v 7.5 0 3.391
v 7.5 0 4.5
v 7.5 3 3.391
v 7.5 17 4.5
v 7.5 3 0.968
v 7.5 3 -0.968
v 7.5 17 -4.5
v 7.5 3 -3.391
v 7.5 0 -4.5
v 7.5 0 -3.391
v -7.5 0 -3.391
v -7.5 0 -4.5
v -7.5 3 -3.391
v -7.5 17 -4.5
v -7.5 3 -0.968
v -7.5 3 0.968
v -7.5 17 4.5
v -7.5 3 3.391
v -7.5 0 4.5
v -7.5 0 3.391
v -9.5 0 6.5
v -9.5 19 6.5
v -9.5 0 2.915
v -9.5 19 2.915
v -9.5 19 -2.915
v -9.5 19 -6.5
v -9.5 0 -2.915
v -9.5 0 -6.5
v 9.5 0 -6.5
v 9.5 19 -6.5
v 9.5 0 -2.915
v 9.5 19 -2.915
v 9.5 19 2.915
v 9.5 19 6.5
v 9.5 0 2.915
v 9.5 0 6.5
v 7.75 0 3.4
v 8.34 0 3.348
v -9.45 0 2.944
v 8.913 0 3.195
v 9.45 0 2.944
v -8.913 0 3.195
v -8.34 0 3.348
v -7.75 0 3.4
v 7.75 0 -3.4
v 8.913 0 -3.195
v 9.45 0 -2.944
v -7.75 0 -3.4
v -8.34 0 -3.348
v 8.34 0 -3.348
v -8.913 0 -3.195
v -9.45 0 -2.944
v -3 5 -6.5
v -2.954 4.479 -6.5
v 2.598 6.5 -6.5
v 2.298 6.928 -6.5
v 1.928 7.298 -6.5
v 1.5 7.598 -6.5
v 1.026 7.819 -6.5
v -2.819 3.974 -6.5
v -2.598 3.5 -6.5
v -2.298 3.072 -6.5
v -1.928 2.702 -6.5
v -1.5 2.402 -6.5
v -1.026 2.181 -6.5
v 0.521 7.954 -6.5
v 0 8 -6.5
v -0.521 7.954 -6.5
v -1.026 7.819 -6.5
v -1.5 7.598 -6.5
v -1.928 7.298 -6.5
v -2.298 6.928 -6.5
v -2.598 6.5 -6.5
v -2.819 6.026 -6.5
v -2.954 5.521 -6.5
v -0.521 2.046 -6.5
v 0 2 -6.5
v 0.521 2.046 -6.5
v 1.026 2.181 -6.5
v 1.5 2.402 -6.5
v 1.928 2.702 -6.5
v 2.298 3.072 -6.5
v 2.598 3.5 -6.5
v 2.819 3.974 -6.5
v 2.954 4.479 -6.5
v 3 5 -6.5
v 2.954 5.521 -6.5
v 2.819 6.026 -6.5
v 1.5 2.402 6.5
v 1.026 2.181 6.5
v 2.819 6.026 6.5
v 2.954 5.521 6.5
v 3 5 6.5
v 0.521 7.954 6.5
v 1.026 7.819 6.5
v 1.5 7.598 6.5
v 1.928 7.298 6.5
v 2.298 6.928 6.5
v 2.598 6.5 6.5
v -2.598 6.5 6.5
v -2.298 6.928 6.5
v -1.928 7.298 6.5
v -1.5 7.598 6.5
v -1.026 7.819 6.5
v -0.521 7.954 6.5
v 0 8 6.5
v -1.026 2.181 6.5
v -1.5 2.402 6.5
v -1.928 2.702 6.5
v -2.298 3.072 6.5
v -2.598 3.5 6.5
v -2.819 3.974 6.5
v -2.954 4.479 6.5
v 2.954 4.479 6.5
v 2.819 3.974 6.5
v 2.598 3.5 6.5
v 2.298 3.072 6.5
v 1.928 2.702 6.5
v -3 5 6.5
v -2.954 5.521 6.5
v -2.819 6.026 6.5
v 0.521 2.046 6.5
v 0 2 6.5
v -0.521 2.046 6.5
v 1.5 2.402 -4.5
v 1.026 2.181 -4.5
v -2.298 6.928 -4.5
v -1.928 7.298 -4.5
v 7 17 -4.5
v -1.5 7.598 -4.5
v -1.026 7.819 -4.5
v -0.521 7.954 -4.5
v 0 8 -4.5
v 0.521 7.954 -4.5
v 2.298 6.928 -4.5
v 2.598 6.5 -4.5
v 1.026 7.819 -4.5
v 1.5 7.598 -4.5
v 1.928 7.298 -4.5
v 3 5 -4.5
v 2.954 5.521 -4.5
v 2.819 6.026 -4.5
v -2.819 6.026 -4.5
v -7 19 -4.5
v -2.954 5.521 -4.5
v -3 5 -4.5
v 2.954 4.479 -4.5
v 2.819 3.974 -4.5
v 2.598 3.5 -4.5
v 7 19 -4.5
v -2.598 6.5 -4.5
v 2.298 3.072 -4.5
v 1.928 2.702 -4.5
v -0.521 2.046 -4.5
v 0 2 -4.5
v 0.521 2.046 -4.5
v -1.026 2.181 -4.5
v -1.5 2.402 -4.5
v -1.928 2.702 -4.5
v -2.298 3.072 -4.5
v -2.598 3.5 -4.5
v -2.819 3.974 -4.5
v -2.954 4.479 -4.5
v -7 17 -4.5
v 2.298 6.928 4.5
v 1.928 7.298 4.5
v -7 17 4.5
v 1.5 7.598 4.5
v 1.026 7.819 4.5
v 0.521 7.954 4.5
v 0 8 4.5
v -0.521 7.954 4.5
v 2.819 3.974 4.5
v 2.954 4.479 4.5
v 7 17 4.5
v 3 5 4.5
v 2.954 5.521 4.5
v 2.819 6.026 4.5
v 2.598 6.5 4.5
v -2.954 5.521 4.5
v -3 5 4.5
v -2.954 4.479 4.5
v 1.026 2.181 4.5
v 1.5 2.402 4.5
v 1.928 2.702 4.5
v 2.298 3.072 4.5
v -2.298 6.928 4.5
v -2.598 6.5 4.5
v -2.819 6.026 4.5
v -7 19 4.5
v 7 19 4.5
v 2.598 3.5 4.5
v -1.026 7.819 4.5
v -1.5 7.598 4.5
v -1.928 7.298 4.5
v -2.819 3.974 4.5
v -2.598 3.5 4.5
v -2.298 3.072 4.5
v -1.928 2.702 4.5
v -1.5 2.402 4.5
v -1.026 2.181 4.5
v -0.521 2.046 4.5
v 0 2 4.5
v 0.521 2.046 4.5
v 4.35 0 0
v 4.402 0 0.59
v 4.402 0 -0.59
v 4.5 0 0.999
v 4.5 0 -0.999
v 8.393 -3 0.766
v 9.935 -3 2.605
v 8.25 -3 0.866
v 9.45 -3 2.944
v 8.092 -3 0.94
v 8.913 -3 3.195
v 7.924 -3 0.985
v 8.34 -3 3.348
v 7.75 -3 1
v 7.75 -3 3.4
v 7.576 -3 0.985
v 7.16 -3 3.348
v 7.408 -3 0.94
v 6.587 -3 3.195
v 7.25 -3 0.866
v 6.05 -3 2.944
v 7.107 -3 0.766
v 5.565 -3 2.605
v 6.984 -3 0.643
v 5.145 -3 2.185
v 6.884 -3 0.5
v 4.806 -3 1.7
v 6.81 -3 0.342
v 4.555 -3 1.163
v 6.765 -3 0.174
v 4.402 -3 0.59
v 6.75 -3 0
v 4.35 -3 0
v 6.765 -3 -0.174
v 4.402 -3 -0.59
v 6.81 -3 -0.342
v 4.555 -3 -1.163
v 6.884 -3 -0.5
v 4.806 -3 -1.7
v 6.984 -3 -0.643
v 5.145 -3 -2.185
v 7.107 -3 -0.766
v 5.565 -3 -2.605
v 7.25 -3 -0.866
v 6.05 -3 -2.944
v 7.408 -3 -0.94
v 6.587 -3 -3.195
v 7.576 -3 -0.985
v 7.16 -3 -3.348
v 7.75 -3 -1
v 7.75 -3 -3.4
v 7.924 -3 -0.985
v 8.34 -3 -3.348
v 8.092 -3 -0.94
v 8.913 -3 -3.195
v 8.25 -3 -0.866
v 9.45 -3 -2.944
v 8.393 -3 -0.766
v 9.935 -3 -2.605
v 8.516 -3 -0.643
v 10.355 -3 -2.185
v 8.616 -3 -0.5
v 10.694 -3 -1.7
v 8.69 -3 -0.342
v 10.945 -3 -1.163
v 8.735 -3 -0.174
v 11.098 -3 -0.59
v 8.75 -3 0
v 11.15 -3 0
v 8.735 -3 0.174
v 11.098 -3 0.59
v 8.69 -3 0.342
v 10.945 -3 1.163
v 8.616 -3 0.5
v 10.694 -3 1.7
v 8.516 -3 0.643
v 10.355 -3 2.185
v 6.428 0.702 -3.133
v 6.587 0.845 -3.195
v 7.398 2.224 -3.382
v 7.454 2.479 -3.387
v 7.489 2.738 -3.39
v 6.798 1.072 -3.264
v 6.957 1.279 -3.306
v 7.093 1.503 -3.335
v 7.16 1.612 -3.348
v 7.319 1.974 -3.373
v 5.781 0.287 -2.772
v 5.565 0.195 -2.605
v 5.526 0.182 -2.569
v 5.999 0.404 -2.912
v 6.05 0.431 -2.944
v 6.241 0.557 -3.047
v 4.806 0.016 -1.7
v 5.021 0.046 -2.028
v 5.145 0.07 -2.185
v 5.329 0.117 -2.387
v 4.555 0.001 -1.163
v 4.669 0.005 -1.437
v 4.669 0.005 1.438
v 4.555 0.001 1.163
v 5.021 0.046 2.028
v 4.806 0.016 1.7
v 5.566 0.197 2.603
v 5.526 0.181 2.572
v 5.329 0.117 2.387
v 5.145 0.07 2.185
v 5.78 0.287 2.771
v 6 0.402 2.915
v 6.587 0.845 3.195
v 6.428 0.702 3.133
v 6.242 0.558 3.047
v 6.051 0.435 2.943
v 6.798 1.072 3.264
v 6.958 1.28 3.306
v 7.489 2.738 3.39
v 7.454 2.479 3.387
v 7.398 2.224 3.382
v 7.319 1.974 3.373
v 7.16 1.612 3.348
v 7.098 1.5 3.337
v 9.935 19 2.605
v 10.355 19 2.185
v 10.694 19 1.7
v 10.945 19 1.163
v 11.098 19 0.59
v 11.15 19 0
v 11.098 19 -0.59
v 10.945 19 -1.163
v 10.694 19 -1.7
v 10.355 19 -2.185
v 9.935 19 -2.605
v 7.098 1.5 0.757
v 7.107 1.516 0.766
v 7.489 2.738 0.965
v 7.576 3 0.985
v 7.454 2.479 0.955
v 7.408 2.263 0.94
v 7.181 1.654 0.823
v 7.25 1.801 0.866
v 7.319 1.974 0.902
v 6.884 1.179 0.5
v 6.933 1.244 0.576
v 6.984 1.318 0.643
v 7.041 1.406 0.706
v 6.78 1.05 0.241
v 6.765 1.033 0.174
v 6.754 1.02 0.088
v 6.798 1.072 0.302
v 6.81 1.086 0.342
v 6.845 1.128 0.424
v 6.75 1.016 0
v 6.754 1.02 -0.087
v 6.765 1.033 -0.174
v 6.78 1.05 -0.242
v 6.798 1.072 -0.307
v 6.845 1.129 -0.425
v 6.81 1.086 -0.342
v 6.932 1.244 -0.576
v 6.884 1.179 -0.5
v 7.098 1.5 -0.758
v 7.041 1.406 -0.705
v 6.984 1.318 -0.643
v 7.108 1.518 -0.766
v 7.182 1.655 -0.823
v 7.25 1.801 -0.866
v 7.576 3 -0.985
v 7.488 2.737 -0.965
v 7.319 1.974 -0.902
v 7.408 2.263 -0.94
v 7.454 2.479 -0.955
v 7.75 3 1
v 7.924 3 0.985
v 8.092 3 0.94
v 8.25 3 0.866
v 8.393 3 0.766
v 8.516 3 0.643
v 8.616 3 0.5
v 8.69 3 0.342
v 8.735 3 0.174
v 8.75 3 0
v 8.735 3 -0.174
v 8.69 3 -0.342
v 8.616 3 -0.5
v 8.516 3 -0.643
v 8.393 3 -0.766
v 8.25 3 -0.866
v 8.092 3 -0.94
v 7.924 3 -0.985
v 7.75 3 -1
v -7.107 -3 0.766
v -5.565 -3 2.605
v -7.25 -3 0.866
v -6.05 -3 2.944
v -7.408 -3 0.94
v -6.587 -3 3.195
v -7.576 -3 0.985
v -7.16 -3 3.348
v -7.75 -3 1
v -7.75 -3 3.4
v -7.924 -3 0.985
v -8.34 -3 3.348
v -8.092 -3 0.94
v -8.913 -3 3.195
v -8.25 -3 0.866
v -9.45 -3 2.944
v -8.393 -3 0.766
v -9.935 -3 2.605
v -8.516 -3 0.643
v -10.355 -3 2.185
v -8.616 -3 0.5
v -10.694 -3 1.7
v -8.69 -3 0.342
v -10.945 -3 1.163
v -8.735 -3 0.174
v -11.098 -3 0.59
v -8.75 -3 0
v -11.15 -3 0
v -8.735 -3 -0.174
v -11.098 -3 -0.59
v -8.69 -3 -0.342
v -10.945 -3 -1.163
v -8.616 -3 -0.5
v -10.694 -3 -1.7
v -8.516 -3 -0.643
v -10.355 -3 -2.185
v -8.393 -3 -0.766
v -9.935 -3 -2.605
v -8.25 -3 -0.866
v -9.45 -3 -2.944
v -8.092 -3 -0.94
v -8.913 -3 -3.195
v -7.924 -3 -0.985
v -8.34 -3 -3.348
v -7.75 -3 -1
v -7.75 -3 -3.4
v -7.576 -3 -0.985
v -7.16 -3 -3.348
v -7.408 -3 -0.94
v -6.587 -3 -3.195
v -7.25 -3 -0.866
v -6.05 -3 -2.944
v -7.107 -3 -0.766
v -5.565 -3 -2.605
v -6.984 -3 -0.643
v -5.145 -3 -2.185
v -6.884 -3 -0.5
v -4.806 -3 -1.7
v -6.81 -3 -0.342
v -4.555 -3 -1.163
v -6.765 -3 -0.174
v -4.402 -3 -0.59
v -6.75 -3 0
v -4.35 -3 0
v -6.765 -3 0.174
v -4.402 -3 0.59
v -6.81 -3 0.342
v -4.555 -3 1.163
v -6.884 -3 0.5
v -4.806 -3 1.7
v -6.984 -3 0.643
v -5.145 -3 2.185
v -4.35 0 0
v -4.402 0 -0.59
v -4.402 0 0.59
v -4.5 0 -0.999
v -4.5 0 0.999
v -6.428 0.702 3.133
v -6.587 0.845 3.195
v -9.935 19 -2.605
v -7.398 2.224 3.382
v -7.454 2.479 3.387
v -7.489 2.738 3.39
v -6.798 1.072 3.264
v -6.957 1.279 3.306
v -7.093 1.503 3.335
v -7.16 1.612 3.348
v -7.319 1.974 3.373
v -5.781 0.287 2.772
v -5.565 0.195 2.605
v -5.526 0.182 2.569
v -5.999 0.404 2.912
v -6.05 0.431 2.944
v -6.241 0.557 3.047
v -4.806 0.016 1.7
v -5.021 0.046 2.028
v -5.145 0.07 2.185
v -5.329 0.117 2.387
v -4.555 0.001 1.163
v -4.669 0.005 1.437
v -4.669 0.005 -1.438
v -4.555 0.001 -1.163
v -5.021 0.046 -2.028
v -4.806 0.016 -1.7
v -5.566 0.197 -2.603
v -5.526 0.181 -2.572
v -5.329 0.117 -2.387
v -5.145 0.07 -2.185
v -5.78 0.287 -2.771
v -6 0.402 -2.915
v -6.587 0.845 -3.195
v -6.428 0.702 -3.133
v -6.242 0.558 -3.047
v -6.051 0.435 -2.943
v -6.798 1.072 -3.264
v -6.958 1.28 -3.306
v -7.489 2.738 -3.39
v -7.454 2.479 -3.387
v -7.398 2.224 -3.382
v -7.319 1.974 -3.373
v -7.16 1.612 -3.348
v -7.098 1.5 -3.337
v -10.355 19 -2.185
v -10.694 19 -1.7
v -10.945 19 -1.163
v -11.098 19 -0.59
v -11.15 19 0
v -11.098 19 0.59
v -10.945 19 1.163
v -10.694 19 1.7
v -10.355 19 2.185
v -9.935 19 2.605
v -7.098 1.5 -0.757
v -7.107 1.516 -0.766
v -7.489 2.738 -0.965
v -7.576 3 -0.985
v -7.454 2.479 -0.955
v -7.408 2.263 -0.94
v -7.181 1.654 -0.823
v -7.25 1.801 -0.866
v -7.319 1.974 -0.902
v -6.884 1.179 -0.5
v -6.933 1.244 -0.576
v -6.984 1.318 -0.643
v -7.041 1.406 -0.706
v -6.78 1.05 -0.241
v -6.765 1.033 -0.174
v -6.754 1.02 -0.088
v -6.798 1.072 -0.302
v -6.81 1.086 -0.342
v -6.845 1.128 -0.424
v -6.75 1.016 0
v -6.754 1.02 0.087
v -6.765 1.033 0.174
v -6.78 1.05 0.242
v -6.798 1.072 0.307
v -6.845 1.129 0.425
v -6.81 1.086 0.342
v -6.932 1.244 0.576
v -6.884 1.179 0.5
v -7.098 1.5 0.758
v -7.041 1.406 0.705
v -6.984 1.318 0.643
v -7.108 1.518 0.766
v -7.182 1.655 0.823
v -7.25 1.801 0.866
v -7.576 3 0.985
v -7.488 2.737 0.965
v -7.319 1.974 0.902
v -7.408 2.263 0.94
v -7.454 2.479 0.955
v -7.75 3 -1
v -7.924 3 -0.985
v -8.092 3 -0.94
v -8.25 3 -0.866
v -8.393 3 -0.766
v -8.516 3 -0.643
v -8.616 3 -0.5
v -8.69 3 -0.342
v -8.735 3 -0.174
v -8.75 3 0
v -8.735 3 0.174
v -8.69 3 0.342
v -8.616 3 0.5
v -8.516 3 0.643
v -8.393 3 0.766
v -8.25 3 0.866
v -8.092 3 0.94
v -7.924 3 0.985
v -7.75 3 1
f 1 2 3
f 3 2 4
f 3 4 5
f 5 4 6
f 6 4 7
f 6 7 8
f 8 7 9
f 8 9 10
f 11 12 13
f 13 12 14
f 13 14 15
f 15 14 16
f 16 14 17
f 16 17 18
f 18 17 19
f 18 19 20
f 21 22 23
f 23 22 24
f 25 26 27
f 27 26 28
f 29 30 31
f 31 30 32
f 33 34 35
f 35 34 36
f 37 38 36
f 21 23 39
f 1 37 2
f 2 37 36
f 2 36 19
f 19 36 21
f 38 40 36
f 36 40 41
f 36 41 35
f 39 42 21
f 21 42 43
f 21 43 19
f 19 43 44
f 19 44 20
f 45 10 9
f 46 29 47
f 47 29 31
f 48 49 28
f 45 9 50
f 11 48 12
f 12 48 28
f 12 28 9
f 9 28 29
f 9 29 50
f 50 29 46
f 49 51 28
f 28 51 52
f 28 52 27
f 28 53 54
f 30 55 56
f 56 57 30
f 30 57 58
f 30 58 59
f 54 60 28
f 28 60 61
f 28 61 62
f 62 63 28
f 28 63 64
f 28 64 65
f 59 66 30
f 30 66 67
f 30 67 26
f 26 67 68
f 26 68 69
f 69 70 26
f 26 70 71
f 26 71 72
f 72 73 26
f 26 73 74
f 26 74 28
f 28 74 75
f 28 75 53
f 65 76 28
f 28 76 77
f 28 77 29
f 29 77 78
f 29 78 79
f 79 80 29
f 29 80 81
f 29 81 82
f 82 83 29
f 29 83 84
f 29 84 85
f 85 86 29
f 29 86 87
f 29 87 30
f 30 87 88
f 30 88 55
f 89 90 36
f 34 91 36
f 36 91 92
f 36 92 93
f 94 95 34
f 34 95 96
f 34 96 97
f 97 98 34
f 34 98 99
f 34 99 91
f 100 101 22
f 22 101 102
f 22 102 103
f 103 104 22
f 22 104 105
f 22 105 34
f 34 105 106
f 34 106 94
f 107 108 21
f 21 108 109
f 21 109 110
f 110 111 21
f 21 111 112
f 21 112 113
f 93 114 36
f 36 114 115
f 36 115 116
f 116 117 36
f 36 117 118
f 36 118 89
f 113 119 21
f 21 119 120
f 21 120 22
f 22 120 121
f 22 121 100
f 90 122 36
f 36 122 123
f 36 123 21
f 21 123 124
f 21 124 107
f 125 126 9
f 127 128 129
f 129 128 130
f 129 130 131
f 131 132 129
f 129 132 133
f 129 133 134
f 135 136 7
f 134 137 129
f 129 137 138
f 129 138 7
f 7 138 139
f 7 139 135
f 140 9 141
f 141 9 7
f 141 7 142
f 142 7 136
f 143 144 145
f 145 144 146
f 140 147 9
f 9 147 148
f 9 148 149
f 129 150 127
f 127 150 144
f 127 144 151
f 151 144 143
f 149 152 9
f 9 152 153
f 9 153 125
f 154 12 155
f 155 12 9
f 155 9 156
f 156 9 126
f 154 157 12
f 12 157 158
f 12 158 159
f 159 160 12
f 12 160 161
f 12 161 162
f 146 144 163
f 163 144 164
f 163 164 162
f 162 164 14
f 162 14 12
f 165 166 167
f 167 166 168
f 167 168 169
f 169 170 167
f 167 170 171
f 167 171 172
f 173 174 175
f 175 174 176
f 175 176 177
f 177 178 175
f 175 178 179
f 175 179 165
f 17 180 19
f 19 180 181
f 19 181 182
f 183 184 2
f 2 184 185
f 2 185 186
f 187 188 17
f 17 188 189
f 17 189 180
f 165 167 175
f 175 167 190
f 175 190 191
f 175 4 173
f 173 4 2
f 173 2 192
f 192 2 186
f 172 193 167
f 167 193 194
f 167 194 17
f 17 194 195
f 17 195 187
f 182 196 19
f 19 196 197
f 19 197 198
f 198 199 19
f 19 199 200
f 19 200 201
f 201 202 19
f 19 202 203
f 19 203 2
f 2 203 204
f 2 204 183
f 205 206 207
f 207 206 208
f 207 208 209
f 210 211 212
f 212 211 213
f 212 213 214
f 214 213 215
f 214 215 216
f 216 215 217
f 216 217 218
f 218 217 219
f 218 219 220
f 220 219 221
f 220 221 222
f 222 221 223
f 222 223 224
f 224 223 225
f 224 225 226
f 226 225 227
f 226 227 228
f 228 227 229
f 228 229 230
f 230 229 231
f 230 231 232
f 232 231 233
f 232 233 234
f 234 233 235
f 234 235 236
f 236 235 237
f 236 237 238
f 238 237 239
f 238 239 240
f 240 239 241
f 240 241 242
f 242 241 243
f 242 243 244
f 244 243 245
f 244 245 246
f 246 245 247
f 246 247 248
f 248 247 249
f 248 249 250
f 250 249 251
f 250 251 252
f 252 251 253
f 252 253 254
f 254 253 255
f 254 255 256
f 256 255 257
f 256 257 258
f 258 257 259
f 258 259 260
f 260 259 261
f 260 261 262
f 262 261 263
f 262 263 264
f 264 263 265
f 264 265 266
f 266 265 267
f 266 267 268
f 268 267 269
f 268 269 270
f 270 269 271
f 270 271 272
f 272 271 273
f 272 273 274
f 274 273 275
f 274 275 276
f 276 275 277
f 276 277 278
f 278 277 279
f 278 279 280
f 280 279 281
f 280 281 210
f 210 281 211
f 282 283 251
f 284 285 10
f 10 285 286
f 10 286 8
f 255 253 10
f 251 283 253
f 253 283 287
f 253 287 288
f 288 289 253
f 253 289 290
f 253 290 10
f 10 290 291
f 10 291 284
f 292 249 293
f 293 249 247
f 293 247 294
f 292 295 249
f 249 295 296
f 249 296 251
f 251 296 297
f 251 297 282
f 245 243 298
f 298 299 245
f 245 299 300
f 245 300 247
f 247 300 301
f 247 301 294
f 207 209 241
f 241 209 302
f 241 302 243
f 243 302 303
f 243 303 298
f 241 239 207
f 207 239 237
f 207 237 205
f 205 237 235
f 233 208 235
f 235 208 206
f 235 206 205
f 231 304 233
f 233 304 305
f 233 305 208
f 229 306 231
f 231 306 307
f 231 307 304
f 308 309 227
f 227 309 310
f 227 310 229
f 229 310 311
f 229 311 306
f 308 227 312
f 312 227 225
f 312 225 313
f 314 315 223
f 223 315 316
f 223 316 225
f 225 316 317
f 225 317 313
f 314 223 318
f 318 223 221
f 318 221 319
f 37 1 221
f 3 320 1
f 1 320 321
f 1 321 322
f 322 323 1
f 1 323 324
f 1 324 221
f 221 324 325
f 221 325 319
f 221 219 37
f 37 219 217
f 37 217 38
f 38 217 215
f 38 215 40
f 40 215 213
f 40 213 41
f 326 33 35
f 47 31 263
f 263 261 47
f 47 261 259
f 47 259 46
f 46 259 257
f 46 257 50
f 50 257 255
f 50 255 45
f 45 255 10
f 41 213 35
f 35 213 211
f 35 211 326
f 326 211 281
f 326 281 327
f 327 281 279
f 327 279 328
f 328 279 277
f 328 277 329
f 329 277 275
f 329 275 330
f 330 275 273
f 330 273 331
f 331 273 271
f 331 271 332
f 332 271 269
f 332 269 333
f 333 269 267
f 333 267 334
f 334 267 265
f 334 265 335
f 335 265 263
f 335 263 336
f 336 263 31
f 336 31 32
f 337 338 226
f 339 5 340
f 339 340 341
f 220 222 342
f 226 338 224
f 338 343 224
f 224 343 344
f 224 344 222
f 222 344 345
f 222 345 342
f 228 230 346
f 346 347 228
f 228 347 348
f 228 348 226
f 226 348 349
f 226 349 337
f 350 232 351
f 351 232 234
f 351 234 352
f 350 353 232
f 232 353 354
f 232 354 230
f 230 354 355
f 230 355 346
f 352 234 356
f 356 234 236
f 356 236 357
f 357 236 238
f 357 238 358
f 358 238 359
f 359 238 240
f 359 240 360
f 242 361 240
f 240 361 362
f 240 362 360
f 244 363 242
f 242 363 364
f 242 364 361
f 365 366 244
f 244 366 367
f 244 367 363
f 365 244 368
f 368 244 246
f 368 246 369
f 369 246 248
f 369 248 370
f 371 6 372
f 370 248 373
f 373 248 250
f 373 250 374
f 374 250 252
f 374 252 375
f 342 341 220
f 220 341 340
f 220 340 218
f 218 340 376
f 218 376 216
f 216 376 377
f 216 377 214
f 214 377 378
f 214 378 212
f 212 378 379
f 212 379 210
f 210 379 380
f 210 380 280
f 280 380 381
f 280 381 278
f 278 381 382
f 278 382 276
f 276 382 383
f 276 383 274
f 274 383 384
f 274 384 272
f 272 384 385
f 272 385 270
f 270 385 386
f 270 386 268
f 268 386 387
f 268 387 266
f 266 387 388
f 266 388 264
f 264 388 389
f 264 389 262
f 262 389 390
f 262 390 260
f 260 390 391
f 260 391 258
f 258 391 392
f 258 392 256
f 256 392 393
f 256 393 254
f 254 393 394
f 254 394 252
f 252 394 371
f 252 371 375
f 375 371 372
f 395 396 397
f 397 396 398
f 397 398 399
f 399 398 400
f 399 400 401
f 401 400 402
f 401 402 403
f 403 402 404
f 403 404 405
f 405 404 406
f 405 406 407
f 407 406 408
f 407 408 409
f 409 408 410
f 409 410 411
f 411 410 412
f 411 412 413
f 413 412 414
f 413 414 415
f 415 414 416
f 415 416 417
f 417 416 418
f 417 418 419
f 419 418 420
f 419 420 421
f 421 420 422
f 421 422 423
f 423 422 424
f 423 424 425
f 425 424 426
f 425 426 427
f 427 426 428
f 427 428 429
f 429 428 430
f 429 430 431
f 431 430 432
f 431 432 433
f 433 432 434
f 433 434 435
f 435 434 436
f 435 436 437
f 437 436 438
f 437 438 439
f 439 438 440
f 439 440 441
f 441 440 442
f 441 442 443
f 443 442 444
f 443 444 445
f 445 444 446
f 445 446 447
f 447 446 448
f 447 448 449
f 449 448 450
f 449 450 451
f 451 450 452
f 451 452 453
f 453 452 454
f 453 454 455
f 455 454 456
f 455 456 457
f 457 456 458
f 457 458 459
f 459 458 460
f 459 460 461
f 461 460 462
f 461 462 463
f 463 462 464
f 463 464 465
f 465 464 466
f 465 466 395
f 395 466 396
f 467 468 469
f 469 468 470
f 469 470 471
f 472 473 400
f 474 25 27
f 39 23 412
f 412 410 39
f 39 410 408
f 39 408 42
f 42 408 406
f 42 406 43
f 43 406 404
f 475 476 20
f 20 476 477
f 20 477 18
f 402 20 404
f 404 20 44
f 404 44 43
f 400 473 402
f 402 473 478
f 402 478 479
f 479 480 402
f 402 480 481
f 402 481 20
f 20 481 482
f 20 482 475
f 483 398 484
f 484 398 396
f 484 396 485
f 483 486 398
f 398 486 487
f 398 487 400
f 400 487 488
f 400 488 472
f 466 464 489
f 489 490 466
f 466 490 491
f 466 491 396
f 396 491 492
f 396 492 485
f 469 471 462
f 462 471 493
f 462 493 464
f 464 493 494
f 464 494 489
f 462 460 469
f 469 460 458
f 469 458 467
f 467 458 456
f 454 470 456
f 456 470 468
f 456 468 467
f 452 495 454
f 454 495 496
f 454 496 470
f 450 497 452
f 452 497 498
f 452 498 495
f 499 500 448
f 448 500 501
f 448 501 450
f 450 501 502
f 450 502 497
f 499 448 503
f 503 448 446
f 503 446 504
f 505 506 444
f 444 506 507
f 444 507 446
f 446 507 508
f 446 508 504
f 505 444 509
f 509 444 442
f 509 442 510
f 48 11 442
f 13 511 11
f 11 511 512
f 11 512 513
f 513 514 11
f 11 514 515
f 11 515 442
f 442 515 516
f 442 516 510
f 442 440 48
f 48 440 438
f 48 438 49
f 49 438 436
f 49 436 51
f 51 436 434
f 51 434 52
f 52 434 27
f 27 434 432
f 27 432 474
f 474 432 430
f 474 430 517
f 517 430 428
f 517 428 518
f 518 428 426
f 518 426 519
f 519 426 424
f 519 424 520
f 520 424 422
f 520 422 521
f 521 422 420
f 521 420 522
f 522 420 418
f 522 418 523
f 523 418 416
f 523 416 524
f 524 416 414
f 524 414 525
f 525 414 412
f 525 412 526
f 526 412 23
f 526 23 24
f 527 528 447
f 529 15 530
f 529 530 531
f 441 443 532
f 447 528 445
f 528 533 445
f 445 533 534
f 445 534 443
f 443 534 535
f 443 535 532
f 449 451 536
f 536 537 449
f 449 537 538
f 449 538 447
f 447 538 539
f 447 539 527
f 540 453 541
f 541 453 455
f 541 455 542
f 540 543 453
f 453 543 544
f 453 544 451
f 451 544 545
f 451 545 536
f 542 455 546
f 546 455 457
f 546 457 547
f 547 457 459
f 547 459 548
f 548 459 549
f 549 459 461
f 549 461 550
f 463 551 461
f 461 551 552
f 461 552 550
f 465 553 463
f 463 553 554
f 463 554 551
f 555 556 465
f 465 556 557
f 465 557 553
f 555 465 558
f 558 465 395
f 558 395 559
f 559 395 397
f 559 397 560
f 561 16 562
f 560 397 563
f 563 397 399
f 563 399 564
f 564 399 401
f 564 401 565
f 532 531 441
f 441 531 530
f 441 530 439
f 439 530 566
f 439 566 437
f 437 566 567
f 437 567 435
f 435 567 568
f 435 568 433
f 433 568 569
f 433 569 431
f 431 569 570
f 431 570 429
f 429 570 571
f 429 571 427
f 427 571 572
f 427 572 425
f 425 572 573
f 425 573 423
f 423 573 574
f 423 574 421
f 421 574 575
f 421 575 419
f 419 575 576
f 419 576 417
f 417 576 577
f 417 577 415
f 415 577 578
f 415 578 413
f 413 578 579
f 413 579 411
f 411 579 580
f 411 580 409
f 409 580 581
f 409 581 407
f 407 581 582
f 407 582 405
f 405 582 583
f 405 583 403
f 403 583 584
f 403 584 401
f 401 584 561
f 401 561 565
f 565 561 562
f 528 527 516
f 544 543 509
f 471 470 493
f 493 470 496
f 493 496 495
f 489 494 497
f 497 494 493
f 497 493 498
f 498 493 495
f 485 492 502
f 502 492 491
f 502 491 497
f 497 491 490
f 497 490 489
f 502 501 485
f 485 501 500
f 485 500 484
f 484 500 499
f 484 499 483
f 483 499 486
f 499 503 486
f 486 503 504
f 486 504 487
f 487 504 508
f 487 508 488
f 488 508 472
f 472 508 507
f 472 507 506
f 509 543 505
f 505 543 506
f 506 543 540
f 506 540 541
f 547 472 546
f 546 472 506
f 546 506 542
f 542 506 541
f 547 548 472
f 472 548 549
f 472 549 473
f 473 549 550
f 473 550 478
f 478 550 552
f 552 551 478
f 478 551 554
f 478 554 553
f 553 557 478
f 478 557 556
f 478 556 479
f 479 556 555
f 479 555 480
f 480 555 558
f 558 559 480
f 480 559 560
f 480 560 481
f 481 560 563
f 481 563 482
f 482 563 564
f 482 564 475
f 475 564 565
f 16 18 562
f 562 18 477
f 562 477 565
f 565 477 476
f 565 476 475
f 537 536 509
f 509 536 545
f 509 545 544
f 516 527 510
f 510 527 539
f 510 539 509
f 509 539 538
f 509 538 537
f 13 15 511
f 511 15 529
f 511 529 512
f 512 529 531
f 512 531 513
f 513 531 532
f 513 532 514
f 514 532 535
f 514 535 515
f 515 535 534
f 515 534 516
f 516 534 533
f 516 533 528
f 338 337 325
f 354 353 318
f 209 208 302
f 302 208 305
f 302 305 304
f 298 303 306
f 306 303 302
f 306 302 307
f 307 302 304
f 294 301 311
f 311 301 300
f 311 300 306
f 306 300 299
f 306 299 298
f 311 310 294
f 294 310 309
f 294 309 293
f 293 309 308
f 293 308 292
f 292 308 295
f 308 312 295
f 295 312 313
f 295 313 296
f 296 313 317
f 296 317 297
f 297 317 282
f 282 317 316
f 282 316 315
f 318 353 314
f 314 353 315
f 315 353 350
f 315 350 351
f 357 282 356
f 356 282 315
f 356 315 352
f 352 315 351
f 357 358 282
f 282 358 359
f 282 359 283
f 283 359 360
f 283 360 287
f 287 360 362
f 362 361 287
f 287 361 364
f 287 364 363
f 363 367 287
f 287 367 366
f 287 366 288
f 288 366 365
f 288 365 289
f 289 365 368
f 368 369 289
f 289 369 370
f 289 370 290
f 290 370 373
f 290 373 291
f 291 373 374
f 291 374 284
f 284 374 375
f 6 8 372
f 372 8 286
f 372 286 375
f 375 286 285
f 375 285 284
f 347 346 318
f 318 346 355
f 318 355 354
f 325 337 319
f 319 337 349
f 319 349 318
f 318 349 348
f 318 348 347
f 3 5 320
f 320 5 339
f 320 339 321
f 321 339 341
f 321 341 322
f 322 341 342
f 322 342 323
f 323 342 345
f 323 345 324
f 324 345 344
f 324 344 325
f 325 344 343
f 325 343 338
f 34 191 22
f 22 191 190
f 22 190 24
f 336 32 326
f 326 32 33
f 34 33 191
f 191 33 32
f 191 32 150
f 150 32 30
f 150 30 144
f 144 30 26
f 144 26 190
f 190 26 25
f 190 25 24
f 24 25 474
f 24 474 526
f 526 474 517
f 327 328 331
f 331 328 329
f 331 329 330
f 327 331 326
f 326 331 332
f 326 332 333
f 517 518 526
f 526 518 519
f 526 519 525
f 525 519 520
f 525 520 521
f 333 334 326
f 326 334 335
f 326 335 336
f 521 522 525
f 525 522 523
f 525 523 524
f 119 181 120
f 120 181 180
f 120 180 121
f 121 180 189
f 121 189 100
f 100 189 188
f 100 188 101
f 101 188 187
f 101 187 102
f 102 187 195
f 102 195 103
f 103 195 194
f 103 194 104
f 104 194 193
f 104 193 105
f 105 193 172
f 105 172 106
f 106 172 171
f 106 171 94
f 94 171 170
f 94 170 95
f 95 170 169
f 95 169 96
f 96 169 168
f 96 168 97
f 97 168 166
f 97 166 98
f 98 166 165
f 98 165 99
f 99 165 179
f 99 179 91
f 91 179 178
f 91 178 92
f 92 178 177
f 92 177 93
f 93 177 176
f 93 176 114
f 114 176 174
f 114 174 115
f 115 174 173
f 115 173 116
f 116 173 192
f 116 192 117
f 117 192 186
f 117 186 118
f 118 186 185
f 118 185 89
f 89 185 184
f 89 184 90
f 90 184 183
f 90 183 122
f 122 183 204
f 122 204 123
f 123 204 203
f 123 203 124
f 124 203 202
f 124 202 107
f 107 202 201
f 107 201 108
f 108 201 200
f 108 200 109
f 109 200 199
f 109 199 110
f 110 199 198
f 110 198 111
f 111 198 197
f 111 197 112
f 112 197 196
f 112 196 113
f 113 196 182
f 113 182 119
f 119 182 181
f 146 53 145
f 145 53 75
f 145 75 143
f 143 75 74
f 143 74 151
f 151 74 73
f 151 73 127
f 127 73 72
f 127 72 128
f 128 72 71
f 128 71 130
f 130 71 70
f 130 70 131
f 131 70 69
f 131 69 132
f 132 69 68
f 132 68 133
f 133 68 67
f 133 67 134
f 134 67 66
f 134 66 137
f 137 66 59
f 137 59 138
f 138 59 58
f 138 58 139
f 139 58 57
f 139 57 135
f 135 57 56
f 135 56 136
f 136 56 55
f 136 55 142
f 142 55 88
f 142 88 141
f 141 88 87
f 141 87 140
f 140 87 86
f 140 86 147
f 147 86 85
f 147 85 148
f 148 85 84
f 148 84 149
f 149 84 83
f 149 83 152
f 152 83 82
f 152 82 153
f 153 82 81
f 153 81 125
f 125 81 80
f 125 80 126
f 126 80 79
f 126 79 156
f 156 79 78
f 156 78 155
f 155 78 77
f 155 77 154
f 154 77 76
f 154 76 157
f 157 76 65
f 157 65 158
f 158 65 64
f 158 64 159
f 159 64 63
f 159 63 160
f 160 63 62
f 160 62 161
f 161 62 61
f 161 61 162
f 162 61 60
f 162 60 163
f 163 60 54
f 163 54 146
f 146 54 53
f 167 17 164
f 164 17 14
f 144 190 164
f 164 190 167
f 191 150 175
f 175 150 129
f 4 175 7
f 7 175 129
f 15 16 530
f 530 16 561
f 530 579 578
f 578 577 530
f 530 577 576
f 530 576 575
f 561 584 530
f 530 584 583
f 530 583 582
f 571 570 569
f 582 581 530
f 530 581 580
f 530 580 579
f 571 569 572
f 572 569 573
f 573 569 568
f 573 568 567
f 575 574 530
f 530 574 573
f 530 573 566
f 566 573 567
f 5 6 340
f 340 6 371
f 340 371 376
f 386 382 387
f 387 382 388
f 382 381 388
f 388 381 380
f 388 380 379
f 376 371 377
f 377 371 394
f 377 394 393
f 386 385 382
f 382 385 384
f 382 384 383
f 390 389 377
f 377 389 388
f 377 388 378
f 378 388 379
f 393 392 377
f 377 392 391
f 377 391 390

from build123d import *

# Parameters (mm, degrees)
ESBO_O1_W                = 19
ESBO_O1_H                = 13
ESBO_O1_W_2              = 15
ESBO_O1_H_2              = 9
RESSALTO_EXTRUS_O1_DEPTH = 17
ESBO_O2_R                = 3.4
ESBO_O2_R_2              = 1
RESSALTO_EXTRUS_O2_DEPTH = 3
FILETE1_R                = 3
RESSALTO_EXTRUS_O3_START = 19
RESSALTO_EXTRUS_O3_DEPTH = 19
CORTE_EXTRUS_O1_DEPTH    = 26.579728302
ESBO_O5_W                = 0.5
ESBO_O5_H                = 1.584952831
ESBO_O5_W_2              = 2
ESBO_O5_H_2              = 5.830094338
RESSALTO_EXTRUS_O6_DEPTH = 2
CORTE_EXTRUS_O2_START    = -6
ESBO_O7_R                = 1
CORTE_EXTRUS_O2_DEPTH    = 6


with BuildPart() as part:
    # Esboço1 → Ressalto-extrusão1 (new body)
    with BuildSketch(Plane(origin=(0, 0, 0), x_dir=(1, 0, 0), z_dir=(0, 1, 0))):
        Rectangle(ESBO_O1_W, ESBO_O1_H)
        Rectangle(ESBO_O1_W_2, ESBO_O1_H_2, mode=Mode.SUBTRACT)
    extrude(amount=RESSALTO_EXTRUS_O1_DEPTH)

    # Esboço2 → Ressalto-extrusão2 (add)
    # profile 1 of 2: a face of its own
    with BuildSketch(Plane.XZ):
        with Locations(Location((7.75, 0, 0), (0, 0, 94.216730479))):
            Circle(ESBO_O2_R)
        with Locations(Location((7.75, 0, 0), (0, 0, 104.477512186))):
            Circle(ESBO_O2_R_2, mode=Mode.SUBTRACT)
    # profile 2 of 2: a face of its own
    with BuildSketch(Plane.XZ):
        with Locations(Location((-7.75, 0, 0), (0, 0, 85.783269521))):
            Circle(ESBO_O2_R)
        with Locations(Location((-7.75, 0, 0), (0, 0, 75.522487814))):
            Circle(ESBO_O2_R_2, mode=Mode.SUBTRACT)
    extrude(amount=RESSALTO_EXTRUS_O2_DEPTH)

    # Filete1
    # the kernel refuses this fillet: 3 mm, written as the material it adds along each edge
    with BuildSketch(Plane(origin=(-7.5, 0, -6.531754163), x_dir=(0, 1, 0), z_dir=(0, 0, 1))) as filete1_piece_1_section:
        with BuildLine():
            CenterArc((FILETE1_R, -FILETE1_R), FILETE1_R, 90, 90)
            Line((0, -FILETE1_R), (0, 0))
            Line((0, 0), (FILETE1_R, 0))
        make_face()
    filete1_piece_1 = extrude(amount=17.42255053, mode=Mode.PRIVATE)
    filete1_piece_1 = filete1_piece_1 & Plane(origin=(-7.75, 0.863183733, 0), x_dir=(0.07352941176727577, 0, 0.9972930490107501), z_dir=(0, 1, 0)) * Cylinder(3.4, 47, mode=Mode.PRIVATE)
    filete1_piece_1 = filete1_piece_1 - Plane(origin=(-7.75, 0.863183733, 0), x_dir=(0.25000000000118416, 0, 0.9682458365515485), z_dir=(0, 1, 0)) * Cylinder(1, 47, mode=Mode.PRIVATE)
    add(filete1_piece_1)
    with BuildSketch(Plane(origin=(-7.5, 0, -10.890796367), x_dir=(0, 1, 0), z_dir=(0, 0, 1))) as filete1_piece_2_section:
        with BuildLine():
            CenterArc((FILETE1_R, -FILETE1_R), FILETE1_R, 90, 90)
            Line((0, -FILETE1_R), (0, 0))
            Line((0, 0), (FILETE1_R, 0))
        make_face()
    filete1_piece_2 = extrude(amount=17.42255053, mode=Mode.PRIVATE)
    filete1_piece_2 = filete1_piece_2 & Plane(origin=(-7.75, 0.863183733, 0), x_dir=(0.07352941176727577, 0, 0.9972930490107501), z_dir=(0, 1, 0)) * Cylinder(3.4, 47, mode=Mode.PRIVATE)
    filete1_piece_2 = filete1_piece_2 - Plane(origin=(-7.75, 0.863183733, 0), x_dir=(0.25000000000118416, 0, 0.9682458365515485), z_dir=(0, 1, 0)) * Cylinder(1, 47, mode=Mode.PRIVATE)
    add(filete1_piece_2)
    with BuildSketch(Plane(origin=(7.5, 0, 6.531754163), x_dir=(0, 1, 0), z_dir=(0, 0, -1))) as filete1_piece_3_section:
        with BuildLine():
            CenterArc((FILETE1_R, -FILETE1_R), FILETE1_R, 90, 90)
            Line((0, -FILETE1_R), (0, 0))
            Line((0, 0), (FILETE1_R, 0))
        make_face()
    filete1_piece_3 = extrude(amount=17.42255053, mode=Mode.PRIVATE)
    filete1_piece_3 = filete1_piece_3 & Plane(origin=(7.75, 0.863183735, 0), x_dir=(-0.07352941176727565, 0, 0.9972930490107501), z_dir=(0, 1, 0)) * Cylinder(3.4, 47, mode=Mode.PRIVATE)
    filete1_piece_3 = filete1_piece_3 - Plane(origin=(7.75, 0.863183735, 0), x_dir=(-0.25000000000118405, 0, 0.9682458365515485), z_dir=(0, 1, 0)) * Cylinder(1, 47, mode=Mode.PRIVATE)
    add(filete1_piece_3)
    with BuildSketch(Plane(origin=(7.5, 0, 10.890796367), x_dir=(0, 1, 0), z_dir=(0, 0, -1))) as filete1_piece_4_section:
        with BuildLine():
            CenterArc((FILETE1_R, -FILETE1_R), FILETE1_R, 90, 90)
            Line((0, -FILETE1_R), (0, 0))
            Line((0, 0), (FILETE1_R, 0))
        make_face()
    filete1_piece_4 = extrude(amount=17.42255053, mode=Mode.PRIVATE)
    filete1_piece_4 = filete1_piece_4 & Plane(origin=(7.75, 0.863183735, 0), x_dir=(-0.07352941176727565, 0, 0.9972930490107501), z_dir=(0, 1, 0)) * Cylinder(3.4, 47, mode=Mode.PRIVATE)
    filete1_piece_4 = filete1_piece_4 - Plane(origin=(7.75, 0.863183735, 0), x_dir=(-0.25000000000118405, 0, 0.9682458365515485), z_dir=(0, 1, 0)) * Cylinder(1, 47, mode=Mode.PRIVATE)
    add(filete1_piece_4)

    # Esboço3 → Ressalto-extrusão3 (add)
    with BuildSketch(Plane(origin=(0, 0, 0), x_dir=(1, 0, 0), z_dir=(0, 1, 0)).offset(RESSALTO_EXTRUS_O3_START)):
        with BuildLine():
            Line((-9.5, -2.915047169), (-9.5, 2.915047169))
            ThreePointArc((-9.5, 2.915047169), (-11.15, 0), (-9.5, -2.915047169))
        make_face()
        with BuildLine():
            Line((9.5, 2.915047169), (9.5, -2.915047169))
            ThreePointArc((9.5, -2.915047169), (11.15, 0), (9.5, 2.915047169))
        make_face()
    extrude(amount=-RESSALTO_EXTRUS_O3_DEPTH)

    # Esboço6 → Corte-extrusão1 (cut, through all)
    with BuildSketch(Plane(origin=(0, 0, -6.5), x_dir=(-1, 0, 0), z_dir=(0, 0, -1))):
        with BuildLine():
            ThreePointArc((-3, 5), (-2.121320344, 2.878679656), (0, 2))
            Line((0, 2), (0, 5))
            Line((0, 5), (-3, 5))
        make_face()
        with BuildLine():
            Line((0, 5), (0, 2))
            ThreePointArc((0, 2), (2.121320344, 2.878679656), (3, 5))
            ThreePointArc((3, 5), (0, 8), (-3, 5))
            Line((-3, 5), (0, 5))
        make_face()
    extrude(amount=-CORTE_EXTRUS_O1_DEPTH, mode=Mode.SUBTRACT)

    # Esboço5 → Ressalto-extrusão6 (add)
    with BuildSketch(Plane(origin=(0, 17, 0), x_dir=(1, 0, 0), z_dir=(0, 1, 0))):
        Polygon((7.5, -4.5), (7, -4.5), (3, -4.5), (-3, -4.5), (-7, -4.5), (-7.5, -4.5), (-7.5, -2.915047169), (-9.5, -2.915047169), (-9.5, -6.5), (-3, -6.5), (3, -6.5), (9.5, -6.5), (9.5, -2.915047169), (7.5, -2.915047169), align=None)
        with Locations((7.25, -3.707523585)):
            Rectangle(ESBO_O5_W, ESBO_O5_H)
        with Locations((7.25, 3.707523585)):
            Rectangle(ESBO_O5_W, ESBO_O5_H)
        Polygon((3, 4.5), (7, 4.5), (7.5, 4.5), (7.5, 2.915047169), (9.5, 2.915047169), (9.5, 6.5), (3, 6.5), (-3, 6.5), (-9.5, 6.5), (-9.5, 2.915047169), (-7.5, 2.915047169), (-7.5, 4.5), (-7, 4.5), (-3, 4.5), align=None)
        with Locations((-7.25, -3.707523585)):
            Rectangle(ESBO_O5_W, ESBO_O5_H)
        with Locations((-7.25, 3.707523585)):
            Rectangle(ESBO_O5_W, ESBO_O5_H)
        with Locations((8.5, 0)):
            Rectangle(ESBO_O5_W_2, ESBO_O5_H_2)
        with Locations((-8.5, 0)):
            Rectangle(ESBO_O5_W_2, ESBO_O5_H_2)
        with Locations((-7.25, 0)):
            Rectangle(ESBO_O5_W, ESBO_O5_H_2)
        with Locations((7.25, 0)):
            Rectangle(ESBO_O5_W, ESBO_O5_H_2)
    extrude(amount=RESSALTO_EXTRUS_O6_DEPTH)

    # Esboço7 → Corte-extrusão2 (cut)
    with BuildSketch(Plane.XZ.offset(3).offset(CORTE_EXTRUS_O2_START)):
        with Locations(Location((-7.75, 0, 0), (0, 0, 75.522487814))):
            Circle(ESBO_O7_R)
        with Locations(Location((7.75, 0, 0), (0, 0, 104.477512186))):
            Circle(ESBO_O7_R)
    extrude(amount=CORTE_EXTRUS_O2_DEPTH, mode=Mode.SUBTRACT)


solid = part.part
